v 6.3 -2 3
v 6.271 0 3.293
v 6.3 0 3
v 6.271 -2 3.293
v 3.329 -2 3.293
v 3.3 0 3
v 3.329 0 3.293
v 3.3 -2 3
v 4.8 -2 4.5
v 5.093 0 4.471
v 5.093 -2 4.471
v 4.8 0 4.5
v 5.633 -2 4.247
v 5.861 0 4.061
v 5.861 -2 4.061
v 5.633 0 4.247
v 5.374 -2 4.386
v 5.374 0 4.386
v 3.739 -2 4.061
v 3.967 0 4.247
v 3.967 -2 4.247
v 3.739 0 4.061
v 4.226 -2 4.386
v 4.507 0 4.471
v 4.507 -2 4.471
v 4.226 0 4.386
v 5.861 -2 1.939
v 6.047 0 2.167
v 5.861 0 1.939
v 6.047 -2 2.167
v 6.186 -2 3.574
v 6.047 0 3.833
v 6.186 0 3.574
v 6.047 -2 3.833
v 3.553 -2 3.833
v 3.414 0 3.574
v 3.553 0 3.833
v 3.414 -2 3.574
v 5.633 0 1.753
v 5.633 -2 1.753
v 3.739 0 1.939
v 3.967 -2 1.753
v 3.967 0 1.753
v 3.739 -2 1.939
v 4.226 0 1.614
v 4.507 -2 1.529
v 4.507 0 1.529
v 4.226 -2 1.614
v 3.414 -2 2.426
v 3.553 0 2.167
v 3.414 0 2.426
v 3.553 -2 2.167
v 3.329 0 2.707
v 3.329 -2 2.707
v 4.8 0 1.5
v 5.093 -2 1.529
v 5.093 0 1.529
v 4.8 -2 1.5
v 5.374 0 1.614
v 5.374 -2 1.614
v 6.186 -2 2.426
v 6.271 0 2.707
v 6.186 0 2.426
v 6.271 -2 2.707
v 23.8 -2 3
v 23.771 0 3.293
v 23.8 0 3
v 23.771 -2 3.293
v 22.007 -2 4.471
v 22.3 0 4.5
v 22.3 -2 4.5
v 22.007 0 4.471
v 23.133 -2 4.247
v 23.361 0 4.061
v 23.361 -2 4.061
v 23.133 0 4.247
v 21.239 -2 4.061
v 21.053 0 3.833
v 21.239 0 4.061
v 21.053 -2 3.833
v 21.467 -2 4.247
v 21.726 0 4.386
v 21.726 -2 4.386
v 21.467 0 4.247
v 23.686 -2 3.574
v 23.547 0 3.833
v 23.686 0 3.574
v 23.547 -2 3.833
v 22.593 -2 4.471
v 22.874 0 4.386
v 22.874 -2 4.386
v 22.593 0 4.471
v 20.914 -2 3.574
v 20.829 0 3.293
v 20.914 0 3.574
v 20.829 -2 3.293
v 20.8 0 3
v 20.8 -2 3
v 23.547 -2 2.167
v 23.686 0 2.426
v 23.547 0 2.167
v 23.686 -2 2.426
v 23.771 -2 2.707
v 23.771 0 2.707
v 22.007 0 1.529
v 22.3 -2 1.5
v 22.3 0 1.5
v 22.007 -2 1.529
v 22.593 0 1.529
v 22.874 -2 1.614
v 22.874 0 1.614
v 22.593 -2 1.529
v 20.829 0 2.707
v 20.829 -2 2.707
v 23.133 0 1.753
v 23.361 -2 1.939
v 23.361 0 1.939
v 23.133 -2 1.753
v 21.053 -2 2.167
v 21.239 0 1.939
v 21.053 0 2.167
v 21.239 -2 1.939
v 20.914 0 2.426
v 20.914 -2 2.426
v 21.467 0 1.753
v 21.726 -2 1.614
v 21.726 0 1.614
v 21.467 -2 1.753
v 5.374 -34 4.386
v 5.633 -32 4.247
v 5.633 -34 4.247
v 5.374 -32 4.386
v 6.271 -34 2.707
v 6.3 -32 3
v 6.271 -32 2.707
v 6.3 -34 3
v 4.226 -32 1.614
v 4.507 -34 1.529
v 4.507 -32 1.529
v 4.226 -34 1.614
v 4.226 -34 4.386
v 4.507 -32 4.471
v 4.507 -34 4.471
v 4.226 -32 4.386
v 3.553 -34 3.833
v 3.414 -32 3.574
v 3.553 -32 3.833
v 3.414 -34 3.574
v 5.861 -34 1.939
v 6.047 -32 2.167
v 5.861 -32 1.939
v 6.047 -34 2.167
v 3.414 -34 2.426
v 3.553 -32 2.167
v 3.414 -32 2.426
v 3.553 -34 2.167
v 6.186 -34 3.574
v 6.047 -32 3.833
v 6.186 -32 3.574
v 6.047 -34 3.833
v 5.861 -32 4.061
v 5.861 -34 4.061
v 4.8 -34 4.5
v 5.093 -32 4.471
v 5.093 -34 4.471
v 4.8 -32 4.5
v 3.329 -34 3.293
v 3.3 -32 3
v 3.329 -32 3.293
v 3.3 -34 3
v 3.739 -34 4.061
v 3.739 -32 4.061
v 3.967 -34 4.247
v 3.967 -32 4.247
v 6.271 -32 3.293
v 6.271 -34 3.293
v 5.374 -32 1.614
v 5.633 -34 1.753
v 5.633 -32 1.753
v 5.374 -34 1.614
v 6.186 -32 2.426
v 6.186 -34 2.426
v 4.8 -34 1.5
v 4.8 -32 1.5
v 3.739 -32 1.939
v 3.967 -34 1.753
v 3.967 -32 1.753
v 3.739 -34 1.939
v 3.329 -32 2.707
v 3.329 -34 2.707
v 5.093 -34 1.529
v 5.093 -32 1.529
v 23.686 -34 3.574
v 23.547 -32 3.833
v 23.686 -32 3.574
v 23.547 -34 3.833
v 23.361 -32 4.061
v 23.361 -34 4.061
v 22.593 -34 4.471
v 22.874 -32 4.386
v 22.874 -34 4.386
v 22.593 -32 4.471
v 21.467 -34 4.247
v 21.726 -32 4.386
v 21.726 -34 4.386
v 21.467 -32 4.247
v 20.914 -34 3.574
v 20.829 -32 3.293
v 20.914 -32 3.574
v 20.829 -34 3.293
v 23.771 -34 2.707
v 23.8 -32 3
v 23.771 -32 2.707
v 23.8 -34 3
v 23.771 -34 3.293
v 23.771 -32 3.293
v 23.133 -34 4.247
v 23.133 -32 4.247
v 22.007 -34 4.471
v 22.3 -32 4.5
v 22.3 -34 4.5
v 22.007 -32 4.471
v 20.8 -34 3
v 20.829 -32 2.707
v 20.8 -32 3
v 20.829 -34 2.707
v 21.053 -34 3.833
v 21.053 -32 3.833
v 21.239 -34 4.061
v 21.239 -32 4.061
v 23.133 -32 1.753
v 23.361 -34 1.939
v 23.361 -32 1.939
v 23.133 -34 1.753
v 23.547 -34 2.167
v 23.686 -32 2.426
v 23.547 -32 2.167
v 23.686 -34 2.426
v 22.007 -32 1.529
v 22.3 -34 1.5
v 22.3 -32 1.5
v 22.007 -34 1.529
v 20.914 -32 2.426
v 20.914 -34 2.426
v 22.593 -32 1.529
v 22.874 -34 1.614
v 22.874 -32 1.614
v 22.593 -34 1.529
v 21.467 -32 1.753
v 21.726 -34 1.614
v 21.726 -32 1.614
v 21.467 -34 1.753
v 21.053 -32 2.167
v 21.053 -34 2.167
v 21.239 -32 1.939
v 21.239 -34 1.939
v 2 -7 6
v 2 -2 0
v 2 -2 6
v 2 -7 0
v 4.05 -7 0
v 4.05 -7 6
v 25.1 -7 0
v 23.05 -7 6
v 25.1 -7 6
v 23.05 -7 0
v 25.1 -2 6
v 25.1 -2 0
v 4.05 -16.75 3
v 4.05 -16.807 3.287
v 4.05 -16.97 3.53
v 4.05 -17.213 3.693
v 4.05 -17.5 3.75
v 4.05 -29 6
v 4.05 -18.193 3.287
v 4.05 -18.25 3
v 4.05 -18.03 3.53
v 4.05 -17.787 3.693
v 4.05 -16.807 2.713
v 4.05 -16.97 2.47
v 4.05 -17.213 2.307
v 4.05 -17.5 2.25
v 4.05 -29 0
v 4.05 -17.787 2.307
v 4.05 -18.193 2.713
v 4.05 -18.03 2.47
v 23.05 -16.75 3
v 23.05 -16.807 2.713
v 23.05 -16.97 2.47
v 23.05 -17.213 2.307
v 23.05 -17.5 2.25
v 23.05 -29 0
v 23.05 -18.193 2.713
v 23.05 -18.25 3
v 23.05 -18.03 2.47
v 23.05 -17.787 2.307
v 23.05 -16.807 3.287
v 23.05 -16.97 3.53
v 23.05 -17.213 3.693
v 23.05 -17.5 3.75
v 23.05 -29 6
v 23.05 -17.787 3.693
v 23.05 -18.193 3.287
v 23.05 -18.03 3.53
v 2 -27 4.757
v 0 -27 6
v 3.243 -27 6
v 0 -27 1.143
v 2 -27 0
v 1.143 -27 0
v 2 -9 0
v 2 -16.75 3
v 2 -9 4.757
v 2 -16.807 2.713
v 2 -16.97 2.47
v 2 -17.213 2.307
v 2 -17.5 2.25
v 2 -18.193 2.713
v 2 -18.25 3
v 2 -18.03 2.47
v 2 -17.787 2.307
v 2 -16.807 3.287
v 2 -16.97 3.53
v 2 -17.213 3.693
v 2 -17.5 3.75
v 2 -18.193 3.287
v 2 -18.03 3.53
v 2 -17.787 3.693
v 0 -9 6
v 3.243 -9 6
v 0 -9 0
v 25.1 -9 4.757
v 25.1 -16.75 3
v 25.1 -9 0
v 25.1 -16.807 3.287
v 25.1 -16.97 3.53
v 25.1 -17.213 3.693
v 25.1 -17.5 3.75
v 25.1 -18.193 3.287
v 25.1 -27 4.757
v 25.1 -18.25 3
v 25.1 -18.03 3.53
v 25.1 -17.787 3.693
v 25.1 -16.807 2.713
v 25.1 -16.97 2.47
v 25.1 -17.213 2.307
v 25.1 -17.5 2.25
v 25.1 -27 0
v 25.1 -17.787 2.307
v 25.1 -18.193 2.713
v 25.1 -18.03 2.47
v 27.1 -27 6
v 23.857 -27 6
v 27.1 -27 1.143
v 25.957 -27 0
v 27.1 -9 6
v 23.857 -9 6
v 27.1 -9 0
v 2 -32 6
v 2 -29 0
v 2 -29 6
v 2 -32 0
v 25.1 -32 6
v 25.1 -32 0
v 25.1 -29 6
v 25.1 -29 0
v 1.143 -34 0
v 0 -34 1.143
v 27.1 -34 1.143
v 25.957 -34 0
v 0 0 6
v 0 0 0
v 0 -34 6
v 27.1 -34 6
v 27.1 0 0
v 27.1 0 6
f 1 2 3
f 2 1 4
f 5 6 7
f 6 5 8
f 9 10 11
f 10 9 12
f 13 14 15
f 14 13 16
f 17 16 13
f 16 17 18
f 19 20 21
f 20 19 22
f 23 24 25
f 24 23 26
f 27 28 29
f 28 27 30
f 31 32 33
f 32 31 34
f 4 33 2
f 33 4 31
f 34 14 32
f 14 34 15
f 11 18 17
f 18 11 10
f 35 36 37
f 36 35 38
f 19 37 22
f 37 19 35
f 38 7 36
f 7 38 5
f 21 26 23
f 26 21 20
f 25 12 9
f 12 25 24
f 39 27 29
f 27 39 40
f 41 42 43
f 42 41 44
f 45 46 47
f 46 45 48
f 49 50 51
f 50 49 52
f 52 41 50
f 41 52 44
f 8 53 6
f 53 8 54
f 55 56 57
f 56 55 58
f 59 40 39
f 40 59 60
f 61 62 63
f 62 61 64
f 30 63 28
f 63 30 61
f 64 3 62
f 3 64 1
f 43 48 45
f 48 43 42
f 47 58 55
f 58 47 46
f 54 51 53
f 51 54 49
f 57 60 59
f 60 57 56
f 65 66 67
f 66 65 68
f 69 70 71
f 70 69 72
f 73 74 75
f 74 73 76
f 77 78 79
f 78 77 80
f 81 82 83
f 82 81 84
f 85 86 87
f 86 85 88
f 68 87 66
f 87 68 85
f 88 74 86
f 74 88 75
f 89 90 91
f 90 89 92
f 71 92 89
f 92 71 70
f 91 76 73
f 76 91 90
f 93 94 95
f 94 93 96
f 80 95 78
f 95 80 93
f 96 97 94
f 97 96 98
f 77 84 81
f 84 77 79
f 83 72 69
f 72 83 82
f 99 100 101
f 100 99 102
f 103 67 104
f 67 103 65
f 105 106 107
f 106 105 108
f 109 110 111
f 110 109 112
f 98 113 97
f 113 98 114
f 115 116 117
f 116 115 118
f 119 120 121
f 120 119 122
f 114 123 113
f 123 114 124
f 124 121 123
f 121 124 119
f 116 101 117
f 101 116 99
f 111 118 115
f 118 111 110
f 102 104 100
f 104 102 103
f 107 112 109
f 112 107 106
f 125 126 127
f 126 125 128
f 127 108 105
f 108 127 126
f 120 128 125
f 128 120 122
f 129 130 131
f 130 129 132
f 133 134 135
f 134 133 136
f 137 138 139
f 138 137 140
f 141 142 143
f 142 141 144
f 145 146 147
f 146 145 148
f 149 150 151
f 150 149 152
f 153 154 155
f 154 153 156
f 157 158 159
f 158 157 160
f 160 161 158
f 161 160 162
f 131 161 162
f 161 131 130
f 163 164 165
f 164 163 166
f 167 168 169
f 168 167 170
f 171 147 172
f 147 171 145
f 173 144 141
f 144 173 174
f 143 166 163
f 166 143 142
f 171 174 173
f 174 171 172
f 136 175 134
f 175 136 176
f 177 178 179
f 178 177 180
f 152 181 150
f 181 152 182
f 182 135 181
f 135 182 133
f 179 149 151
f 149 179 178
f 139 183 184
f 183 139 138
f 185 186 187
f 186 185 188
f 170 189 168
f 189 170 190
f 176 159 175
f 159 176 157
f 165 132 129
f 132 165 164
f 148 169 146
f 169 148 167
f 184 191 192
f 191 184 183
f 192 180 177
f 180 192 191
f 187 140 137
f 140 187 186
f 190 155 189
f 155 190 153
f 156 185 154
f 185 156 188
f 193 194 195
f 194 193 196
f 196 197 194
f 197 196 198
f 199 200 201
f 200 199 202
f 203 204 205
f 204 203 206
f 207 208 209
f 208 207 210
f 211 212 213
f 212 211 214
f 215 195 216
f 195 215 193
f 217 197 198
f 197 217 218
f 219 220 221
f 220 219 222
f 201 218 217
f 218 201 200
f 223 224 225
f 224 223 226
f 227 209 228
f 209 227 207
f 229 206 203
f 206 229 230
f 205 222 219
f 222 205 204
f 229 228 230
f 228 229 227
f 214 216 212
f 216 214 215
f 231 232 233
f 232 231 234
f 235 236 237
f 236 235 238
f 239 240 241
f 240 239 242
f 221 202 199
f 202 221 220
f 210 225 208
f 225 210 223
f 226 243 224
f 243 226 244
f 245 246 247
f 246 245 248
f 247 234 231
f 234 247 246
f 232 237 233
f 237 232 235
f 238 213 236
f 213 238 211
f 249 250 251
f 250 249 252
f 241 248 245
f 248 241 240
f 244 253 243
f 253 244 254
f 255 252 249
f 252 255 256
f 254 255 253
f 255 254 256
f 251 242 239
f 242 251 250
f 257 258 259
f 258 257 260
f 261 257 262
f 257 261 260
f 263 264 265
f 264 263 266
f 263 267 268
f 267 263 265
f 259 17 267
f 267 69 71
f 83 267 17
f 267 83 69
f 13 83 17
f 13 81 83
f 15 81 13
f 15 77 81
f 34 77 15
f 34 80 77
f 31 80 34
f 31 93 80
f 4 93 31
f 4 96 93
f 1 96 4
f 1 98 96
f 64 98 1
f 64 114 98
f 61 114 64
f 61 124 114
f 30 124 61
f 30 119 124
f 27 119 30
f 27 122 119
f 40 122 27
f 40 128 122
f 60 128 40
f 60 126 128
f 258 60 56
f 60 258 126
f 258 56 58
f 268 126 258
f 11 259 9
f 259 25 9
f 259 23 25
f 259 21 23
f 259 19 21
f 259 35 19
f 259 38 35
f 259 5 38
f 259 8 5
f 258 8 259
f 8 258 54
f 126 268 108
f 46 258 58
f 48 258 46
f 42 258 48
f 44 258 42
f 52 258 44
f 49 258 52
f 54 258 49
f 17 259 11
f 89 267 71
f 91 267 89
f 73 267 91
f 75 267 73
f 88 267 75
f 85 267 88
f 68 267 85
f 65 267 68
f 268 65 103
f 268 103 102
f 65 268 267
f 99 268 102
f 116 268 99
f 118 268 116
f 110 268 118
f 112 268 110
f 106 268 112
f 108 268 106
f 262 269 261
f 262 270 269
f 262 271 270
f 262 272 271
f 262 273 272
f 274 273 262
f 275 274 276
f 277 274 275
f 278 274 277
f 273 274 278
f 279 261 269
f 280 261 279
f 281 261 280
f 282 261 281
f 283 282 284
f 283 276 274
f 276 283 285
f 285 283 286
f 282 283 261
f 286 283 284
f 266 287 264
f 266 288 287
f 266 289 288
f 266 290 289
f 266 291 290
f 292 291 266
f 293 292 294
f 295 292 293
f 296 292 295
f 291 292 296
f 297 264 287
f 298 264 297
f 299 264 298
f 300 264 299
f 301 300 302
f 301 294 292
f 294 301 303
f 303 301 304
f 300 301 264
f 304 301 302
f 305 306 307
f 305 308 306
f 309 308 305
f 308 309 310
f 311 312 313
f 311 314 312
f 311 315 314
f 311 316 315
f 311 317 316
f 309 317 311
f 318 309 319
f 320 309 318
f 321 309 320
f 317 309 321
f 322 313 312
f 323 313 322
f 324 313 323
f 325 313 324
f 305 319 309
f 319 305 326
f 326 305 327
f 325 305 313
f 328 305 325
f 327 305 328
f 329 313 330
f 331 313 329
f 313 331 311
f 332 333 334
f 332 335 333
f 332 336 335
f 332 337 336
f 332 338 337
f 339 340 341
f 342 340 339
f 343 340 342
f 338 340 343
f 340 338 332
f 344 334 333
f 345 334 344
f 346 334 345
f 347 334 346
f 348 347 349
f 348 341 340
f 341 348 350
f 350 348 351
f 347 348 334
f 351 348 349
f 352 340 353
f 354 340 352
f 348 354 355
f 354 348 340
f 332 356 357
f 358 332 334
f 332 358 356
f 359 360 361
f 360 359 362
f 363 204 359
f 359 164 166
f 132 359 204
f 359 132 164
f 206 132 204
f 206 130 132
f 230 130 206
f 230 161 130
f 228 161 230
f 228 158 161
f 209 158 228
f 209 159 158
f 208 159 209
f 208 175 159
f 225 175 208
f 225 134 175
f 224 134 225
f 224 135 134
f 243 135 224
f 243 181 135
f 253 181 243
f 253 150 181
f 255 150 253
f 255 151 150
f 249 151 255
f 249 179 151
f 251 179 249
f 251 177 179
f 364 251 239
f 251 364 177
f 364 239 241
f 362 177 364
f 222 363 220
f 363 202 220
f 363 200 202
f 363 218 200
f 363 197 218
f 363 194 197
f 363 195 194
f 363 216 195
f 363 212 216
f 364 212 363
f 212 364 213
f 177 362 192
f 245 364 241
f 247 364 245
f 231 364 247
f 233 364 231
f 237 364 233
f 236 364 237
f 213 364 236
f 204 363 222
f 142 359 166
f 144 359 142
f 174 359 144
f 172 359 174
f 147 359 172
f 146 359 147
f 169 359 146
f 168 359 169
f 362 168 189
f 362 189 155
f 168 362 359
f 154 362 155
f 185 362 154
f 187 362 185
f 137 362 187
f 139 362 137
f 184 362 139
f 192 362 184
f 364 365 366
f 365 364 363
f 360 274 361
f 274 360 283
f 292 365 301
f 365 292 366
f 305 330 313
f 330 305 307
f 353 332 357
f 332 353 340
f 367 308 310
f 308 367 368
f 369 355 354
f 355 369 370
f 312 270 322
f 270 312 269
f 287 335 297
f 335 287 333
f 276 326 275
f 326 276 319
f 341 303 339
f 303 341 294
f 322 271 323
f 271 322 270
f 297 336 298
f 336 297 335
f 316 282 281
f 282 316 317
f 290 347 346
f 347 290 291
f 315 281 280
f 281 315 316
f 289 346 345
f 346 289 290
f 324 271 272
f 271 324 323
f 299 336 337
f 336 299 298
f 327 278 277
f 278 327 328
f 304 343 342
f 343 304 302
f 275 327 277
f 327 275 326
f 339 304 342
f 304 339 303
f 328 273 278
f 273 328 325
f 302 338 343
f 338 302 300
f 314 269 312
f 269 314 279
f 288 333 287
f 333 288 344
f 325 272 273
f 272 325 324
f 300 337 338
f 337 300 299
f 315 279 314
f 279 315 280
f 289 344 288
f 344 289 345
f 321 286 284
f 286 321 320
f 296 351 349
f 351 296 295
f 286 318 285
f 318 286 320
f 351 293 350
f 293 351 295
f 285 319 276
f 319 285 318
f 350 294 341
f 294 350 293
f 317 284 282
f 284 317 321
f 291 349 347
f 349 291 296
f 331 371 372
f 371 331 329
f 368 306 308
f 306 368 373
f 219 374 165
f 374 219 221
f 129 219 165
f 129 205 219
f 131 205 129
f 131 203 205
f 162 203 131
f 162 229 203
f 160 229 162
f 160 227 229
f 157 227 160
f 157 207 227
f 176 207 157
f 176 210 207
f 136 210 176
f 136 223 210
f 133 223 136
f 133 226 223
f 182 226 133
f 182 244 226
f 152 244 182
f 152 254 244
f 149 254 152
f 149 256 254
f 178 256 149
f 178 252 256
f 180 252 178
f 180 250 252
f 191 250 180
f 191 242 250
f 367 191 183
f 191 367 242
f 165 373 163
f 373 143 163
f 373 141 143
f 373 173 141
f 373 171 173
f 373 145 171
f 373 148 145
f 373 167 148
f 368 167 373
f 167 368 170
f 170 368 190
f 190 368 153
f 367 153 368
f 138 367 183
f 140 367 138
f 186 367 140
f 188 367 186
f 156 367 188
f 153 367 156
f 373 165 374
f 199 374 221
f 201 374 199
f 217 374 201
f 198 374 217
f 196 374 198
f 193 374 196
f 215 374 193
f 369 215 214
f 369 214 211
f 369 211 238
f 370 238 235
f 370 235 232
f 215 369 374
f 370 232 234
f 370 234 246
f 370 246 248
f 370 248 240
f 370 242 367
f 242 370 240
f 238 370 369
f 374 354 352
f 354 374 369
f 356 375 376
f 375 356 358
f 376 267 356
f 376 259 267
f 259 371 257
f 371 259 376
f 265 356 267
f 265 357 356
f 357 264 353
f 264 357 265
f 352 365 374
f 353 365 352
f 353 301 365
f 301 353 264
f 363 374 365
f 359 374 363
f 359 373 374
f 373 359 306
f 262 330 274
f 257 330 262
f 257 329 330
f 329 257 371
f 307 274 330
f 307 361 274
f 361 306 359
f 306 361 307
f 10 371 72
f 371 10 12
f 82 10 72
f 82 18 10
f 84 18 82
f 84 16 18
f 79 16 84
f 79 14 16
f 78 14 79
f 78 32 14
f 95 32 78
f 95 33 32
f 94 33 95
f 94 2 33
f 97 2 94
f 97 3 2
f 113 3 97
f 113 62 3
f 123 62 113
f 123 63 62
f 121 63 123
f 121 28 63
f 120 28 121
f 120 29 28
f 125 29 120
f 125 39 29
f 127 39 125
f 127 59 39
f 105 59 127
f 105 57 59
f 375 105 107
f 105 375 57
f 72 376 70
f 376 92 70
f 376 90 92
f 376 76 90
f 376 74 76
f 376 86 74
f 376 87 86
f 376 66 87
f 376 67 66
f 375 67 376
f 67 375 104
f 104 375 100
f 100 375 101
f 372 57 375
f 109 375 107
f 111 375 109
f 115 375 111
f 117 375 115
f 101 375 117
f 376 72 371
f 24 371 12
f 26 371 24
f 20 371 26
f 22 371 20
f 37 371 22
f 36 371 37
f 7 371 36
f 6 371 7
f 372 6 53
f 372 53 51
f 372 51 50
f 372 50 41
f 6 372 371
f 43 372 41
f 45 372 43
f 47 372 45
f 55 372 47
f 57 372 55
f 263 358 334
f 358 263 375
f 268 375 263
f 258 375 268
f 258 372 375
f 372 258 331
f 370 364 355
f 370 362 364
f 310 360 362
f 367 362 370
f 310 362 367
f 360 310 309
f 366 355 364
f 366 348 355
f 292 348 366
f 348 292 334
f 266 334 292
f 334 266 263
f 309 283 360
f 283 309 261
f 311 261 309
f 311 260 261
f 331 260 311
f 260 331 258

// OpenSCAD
/*

    Designed to fit a Runcam Mini in place of the front supports.

    The big-stepped end is the top, the existing top-plate sits *inside* that.

    The small-stepped end is the bottom, and sits *on* the bottom plate.

    The steps are big enough to fit M3 x 2.5mm nuts. The bolts should be M3
    12mm nylon.

*/

// Settings.
edge_radius = 2.8;
hole_wide = 17.5;
thickness = 2;
bolt_hole_radius = 1.5;
cam_above = 10.5;
cam_below = 11.5;
nut_height = 3;
cam_width = 19;
ring_depth = 6;

// Derived.
cam_height = cam_above + cam_below;
frame_width = (edge_radius*2) + hole_wide;
ring_width = frame_width + (thickness*2);
ring_height = cam_above + cam_below + (nut_height * 2) + thickness * 3;
frame_top_down = thickness;
cam_top_down = frame_top_down + thickness + nut_height;
prop_top_down = cam_top_down + thickness;
feet_top_down = cam_top_down + cam_height;
pivot_top_down = cam_top_down + cam_above;


// Make it!
rotate([90, 0, 0]) {
    ring();
}

module ring() {
    difference() {
        ringAdd();
        ringRemove();
    }
}

module ringAdd(){
    // outer box
    cube([ring_width, ring_depth, ring_height]);
}

module ringRemove(){
    translate([0, -1, 0]) {

        // frame top.
        translate([thickness, 0, frame_top_down]) {
            cube([frame_width, ring_depth + 2, thickness + nut_height]);
        }

        // Cam
        translate([((ring_width - cam_width) / 2), 0, cam_top_down - 1]){
            cube([cam_width, ring_depth + 2, cam_height + 2]);
        }

        // Props
        translate([-1, 0, prop_top_down]) {
            cube([thickness + 1, ring_depth + 2, cam_height - thickness*2]);
        }

        translate([ring_width-thickness, 0, prop_top_down]) {
            cube([thickness + 1, ring_depth + 2, cam_height - thickness*2]);
        }

        // Feet.
        translate([thickness, 0, feet_top_down]) {
            cube([frame_width, ring_depth + 2, nut_height]);
        }

        // Holes.
        translate([edge_radius + thickness, (ring_depth / 2) + 1, -1]) {
            cylinder(r=bolt_hole_radius, h=thickness+2, $fn=32);

            translate([hole_wide, 0, 0]) {
                cylinder(r=bolt_hole_radius, h=thickness+2, $fn=32);
            }
        }

        translate([edge_radius + thickness, (ring_depth / 2) + 1, feet_top_down + (nut_height + thickness) + 1]) {
            mirror([0, 0, 1]) {
                cylinder(r=bolt_hole_radius, h=thickness+2, $fn=32);

                translate([hole_wide, 0, 0]) {
                    cylinder(r=bolt_hole_radius, h=thickness+2, $fn=32);
                }
            }
        }
    }

    // Prop clearance chamfers
    translate([-1, ring_depth, prop_top_down]) {
        rotate([0, 0, -45]) {
            cube([thickness + 1, thickness + 1, cam_height - thickness*2]);
        }
    }

    mirror([1, 0, 0]) {
        translate([-ring_width - 1, ring_depth, prop_top_down]) {
            rotate([0, 0, -45]) {
                cube([thickness + 1, thickness + 1, cam_height - thickness*2]);
            }
        }
    }

    // ESC clearance chamfers
    translate([-thickness - 1, -0.1, feet_top_down - thickness - 1]) {
        rotate([0, 0, -45]) {
            cube([thickness + 1, thickness + 1, cam_height - thickness*2]);
        }
    }

    mirror([1, 0, 0]) {
        translate([-ring_width - thickness - 1, - 0.1, feet_top_down - thickness - 1]) {
            rotate([0, 0, -45]) {
                cube([thickness + 1, thickness + 1, cam_height - thickness*2]);
            }
        }
    }

    // Cam pivot
    translate([0, ring_depth/2, pivot_top_down]) {
        rotate([0, 90, 0]) {
            cylinder(r=0.75, h=ring_width, $fn=16);
        }
    }

}
